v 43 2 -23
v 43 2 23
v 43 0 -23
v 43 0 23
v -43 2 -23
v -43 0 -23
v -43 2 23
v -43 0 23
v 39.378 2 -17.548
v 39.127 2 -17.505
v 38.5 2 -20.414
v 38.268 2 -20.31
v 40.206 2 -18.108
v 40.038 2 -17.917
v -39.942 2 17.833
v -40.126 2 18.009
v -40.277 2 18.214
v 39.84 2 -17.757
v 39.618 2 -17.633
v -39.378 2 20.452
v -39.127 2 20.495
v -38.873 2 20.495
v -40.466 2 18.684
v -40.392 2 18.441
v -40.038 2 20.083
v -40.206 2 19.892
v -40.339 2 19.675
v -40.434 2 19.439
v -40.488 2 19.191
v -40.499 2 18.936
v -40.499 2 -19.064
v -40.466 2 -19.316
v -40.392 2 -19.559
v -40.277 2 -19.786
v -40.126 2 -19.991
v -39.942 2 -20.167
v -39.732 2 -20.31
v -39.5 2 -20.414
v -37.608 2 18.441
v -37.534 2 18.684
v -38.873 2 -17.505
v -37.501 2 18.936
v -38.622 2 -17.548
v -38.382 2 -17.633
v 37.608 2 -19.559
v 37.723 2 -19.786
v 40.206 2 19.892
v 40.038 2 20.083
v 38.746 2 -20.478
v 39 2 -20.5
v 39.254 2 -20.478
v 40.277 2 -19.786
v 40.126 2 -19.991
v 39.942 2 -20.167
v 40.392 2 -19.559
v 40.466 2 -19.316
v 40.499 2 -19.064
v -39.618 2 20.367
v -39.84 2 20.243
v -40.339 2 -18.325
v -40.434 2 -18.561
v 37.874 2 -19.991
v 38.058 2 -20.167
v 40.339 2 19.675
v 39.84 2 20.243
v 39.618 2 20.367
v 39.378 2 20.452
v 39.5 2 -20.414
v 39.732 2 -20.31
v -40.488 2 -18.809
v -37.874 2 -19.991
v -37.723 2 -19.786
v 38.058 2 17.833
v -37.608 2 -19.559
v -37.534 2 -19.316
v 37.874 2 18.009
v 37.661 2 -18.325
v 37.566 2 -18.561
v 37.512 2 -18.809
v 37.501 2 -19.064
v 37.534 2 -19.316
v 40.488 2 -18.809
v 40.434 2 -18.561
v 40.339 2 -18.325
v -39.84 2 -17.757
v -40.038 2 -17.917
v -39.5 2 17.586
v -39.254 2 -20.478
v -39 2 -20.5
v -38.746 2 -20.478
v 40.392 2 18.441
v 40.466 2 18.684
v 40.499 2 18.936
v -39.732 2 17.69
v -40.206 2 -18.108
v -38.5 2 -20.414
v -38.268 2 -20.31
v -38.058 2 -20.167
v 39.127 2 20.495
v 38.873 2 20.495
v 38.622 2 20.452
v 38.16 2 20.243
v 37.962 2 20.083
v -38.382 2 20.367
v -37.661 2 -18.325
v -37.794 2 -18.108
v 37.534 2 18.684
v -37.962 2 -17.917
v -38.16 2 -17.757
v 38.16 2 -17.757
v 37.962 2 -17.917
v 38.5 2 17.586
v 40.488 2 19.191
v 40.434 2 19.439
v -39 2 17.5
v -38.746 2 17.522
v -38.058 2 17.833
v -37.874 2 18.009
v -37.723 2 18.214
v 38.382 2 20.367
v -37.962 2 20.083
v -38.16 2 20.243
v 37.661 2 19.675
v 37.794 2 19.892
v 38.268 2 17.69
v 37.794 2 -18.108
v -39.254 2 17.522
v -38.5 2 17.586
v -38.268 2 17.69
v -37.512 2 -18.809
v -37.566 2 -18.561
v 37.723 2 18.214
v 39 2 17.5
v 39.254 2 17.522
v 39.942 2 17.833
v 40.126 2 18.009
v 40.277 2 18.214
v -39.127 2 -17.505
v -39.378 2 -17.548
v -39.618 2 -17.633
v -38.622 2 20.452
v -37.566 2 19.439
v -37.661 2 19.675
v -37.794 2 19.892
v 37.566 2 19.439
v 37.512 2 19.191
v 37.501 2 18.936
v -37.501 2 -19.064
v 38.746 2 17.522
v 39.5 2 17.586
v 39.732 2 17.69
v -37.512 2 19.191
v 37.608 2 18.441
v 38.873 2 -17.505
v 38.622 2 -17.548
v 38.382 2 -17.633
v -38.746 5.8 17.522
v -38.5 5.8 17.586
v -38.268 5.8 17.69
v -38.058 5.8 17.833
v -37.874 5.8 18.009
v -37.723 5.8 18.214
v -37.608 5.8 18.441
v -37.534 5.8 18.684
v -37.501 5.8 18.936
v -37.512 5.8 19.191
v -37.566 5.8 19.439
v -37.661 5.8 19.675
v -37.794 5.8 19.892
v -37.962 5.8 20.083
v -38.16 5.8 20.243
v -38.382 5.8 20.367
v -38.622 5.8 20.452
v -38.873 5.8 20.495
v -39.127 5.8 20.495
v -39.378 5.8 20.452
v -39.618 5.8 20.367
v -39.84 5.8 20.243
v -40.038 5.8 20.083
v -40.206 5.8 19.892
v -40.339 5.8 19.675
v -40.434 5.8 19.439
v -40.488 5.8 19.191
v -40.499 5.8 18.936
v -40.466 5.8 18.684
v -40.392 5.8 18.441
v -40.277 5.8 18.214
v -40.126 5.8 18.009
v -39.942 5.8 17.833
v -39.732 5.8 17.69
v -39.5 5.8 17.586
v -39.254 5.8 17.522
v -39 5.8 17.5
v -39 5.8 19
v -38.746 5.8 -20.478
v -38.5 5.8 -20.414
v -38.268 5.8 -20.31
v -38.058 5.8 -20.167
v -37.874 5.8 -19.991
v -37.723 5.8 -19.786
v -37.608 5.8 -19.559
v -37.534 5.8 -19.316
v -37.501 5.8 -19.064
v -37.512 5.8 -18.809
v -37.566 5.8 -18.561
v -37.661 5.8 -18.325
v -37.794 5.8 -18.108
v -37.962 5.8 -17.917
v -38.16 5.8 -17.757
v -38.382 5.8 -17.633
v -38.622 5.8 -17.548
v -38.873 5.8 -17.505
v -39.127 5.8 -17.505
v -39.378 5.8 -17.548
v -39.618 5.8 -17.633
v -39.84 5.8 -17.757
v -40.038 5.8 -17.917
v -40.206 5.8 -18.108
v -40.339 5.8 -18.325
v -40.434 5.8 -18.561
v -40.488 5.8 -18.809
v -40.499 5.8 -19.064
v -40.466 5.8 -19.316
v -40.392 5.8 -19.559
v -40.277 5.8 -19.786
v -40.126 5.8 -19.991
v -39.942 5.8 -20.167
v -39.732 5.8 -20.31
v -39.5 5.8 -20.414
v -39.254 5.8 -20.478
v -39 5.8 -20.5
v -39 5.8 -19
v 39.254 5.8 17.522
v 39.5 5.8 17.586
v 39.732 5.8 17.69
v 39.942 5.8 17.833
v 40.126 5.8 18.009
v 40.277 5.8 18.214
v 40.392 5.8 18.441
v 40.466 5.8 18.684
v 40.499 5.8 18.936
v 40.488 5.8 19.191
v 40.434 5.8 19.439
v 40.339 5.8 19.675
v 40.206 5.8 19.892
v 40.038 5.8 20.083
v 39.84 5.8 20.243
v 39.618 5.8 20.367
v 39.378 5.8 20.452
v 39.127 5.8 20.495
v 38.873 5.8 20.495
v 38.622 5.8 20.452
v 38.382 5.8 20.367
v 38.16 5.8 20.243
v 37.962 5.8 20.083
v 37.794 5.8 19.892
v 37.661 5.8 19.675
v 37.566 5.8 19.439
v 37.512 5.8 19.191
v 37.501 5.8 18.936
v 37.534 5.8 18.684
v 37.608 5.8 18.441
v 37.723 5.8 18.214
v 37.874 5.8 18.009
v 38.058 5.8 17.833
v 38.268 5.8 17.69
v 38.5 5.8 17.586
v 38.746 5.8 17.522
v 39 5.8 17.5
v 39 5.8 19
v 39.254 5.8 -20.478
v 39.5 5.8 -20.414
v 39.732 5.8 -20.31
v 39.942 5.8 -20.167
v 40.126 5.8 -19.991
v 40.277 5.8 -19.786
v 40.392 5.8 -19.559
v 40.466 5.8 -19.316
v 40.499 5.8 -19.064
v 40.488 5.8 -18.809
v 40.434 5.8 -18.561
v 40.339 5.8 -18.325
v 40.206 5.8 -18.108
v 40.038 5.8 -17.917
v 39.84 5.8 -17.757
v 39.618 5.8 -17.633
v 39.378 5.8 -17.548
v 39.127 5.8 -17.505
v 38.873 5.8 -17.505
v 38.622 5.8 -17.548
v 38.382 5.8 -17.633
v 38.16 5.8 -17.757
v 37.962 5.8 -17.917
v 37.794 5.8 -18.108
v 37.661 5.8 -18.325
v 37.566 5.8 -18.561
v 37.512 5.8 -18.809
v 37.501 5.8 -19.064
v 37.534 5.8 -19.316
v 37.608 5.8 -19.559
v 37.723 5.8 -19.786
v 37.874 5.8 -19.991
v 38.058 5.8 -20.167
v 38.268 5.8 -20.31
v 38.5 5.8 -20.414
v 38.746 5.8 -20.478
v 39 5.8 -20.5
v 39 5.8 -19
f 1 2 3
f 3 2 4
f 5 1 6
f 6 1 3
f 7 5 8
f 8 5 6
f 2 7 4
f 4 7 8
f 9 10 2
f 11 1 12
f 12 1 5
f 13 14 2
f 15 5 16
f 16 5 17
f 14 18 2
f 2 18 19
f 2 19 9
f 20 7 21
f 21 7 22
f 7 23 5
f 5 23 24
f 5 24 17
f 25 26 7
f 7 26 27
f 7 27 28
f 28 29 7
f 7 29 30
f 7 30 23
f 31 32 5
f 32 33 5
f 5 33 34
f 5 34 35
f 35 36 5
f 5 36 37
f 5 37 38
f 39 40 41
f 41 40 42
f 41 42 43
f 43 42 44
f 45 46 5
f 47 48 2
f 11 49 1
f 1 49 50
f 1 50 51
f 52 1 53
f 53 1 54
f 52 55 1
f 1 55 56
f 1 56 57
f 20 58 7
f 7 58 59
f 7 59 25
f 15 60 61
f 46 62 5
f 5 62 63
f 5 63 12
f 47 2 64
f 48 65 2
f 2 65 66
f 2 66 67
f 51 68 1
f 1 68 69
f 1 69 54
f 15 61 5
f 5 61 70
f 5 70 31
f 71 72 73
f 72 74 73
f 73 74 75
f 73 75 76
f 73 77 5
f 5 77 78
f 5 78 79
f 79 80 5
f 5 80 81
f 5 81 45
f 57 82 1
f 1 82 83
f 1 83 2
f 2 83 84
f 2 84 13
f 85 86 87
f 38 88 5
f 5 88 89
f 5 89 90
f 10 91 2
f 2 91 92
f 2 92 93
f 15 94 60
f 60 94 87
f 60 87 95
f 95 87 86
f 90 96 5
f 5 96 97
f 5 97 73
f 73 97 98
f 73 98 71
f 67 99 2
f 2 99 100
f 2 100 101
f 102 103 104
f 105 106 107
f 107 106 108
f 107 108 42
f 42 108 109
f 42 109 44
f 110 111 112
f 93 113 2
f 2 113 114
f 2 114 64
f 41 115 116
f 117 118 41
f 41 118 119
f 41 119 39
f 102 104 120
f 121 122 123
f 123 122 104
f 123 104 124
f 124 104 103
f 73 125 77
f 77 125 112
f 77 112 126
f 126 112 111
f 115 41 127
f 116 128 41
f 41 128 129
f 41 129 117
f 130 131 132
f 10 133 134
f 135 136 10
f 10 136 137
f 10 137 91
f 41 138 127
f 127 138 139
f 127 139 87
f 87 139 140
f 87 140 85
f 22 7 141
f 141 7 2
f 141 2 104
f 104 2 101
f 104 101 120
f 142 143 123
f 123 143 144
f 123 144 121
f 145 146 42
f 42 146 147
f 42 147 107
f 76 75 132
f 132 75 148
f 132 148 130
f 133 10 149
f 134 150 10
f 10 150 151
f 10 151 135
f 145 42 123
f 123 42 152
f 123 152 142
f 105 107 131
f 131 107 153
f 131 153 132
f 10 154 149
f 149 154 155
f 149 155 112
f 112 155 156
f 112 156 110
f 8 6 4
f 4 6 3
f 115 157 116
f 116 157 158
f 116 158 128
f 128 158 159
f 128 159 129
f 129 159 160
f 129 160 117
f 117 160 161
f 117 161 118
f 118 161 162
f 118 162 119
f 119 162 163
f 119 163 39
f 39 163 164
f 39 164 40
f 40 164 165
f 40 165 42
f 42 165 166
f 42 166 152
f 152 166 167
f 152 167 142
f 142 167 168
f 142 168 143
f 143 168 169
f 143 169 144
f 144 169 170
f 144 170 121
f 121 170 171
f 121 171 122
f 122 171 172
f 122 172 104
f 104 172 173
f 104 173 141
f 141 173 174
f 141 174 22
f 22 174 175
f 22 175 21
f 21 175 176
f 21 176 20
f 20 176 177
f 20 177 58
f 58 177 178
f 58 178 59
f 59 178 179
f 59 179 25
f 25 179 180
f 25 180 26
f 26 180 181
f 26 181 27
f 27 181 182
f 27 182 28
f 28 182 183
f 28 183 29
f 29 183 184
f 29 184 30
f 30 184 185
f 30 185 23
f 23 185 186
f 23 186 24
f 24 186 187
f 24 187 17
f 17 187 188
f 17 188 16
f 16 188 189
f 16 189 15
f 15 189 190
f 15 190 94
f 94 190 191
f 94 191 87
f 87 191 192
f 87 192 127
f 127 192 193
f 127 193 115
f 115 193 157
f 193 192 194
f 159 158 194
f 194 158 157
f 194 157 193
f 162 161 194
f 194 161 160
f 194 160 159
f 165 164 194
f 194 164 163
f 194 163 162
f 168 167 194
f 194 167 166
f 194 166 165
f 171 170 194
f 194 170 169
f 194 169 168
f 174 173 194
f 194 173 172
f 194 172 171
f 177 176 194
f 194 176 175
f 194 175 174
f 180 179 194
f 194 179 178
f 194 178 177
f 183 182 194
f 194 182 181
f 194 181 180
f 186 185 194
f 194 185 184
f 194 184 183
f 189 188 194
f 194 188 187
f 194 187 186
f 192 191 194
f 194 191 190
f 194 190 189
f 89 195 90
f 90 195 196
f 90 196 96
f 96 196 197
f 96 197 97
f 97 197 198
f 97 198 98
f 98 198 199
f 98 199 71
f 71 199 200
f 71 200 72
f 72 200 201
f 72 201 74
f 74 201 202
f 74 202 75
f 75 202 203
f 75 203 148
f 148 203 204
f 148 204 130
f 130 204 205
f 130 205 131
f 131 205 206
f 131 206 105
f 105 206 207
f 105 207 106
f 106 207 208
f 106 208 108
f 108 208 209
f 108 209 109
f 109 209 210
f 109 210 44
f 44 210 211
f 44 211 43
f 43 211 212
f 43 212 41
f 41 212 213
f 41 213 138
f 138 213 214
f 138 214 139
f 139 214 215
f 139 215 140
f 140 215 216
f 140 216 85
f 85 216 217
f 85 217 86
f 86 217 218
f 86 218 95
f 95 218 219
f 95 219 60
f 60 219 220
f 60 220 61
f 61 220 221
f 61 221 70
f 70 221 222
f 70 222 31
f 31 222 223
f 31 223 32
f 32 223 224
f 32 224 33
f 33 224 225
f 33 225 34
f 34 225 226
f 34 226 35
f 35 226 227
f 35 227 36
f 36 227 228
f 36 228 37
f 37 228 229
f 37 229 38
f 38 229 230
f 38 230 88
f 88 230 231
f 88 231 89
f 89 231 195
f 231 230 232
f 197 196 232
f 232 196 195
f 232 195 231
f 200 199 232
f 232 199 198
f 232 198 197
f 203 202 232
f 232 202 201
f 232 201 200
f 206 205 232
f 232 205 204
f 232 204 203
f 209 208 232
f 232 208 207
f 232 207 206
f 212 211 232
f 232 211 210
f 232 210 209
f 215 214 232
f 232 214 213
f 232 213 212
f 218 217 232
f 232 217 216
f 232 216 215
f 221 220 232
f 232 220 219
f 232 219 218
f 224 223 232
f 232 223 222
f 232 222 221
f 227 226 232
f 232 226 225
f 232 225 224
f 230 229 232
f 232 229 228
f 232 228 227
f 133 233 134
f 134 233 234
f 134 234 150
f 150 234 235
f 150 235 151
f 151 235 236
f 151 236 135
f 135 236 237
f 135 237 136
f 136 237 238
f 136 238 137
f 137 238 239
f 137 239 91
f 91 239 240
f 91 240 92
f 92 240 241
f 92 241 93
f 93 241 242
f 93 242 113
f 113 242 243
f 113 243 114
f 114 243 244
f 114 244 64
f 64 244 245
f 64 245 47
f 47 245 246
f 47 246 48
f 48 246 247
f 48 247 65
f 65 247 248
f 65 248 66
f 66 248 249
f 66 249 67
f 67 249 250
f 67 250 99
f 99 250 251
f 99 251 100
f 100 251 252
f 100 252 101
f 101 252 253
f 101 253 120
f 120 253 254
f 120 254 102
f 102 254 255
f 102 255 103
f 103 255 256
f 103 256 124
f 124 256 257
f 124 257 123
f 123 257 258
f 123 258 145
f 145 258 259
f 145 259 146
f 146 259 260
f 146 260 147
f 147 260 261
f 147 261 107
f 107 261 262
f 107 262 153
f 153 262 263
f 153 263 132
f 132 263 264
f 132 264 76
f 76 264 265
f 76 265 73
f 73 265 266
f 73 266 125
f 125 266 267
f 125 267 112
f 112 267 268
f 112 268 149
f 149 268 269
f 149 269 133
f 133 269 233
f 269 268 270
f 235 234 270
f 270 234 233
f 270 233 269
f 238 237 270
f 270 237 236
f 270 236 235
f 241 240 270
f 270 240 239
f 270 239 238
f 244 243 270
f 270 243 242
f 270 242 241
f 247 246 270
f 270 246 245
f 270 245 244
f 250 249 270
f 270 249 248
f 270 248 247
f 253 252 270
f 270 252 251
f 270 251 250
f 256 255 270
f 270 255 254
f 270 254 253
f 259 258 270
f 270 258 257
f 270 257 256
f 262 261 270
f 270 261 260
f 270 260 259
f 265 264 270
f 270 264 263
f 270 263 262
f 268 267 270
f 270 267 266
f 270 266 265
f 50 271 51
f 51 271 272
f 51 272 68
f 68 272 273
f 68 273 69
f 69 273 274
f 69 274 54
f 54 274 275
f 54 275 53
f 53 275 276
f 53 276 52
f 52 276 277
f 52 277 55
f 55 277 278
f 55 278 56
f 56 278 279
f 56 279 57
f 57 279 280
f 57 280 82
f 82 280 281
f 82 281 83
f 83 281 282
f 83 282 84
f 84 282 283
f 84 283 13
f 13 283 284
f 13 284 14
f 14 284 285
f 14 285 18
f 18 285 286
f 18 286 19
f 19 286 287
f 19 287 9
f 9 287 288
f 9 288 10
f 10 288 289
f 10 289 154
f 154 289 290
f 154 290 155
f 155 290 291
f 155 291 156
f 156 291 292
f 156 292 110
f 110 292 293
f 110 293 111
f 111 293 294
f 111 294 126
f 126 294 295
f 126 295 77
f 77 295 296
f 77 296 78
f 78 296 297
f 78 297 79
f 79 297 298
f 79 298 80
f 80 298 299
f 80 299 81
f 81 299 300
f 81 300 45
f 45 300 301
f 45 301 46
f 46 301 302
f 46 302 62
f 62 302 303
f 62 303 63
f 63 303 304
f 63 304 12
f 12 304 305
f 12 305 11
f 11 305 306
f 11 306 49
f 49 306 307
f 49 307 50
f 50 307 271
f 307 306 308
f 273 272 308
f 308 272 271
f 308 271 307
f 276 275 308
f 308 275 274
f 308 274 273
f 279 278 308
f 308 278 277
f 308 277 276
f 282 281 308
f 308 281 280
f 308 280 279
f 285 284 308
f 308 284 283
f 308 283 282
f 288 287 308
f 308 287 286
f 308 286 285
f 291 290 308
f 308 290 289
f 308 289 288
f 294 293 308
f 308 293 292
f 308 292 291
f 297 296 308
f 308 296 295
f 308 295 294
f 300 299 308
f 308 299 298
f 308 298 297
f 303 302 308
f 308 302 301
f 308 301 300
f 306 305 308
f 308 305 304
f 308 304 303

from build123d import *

# Parameters (mm, degrees)
SKETCH_1_W      = 86
SKETCH_1_H      = 46
EXTRUDE_1_DEPTH = 2
SKETCH_2_R      = 1.5
EXTRUDE_2_DEPTH = 5.8


with BuildPart() as part:
    # 草图1 → 凸台-拉伸1 (new body)
    with BuildSketch(Plane(origin=(0, 0, 0), x_dir=(1, 0, 0), z_dir=(0, 1, 0))):
        Rectangle(SKETCH_1_W, SKETCH_1_H)
    extrude(amount=EXTRUDE_1_DEPTH)

    # 草图2 → 凸台-拉伸2 (add)
    with BuildSketch(Plane.XZ):
        with Locations(Location((-39, 19, 0), (0, 0, 270))):
            Circle(SKETCH_2_R)
        with Locations(Location((-39, -19, 0), (0, 0, 270))):
            Circle(SKETCH_2_R)
        with Locations(Location((39, 19, 0), (0, 0, 270))):
            Circle(SKETCH_2_R)
        with Locations(Location((39, -19, 0), (0, 0, 270))):
            Circle(SKETCH_2_R)
    extrude(amount=-EXTRUDE_2_DEPTH)


solid = part.part
